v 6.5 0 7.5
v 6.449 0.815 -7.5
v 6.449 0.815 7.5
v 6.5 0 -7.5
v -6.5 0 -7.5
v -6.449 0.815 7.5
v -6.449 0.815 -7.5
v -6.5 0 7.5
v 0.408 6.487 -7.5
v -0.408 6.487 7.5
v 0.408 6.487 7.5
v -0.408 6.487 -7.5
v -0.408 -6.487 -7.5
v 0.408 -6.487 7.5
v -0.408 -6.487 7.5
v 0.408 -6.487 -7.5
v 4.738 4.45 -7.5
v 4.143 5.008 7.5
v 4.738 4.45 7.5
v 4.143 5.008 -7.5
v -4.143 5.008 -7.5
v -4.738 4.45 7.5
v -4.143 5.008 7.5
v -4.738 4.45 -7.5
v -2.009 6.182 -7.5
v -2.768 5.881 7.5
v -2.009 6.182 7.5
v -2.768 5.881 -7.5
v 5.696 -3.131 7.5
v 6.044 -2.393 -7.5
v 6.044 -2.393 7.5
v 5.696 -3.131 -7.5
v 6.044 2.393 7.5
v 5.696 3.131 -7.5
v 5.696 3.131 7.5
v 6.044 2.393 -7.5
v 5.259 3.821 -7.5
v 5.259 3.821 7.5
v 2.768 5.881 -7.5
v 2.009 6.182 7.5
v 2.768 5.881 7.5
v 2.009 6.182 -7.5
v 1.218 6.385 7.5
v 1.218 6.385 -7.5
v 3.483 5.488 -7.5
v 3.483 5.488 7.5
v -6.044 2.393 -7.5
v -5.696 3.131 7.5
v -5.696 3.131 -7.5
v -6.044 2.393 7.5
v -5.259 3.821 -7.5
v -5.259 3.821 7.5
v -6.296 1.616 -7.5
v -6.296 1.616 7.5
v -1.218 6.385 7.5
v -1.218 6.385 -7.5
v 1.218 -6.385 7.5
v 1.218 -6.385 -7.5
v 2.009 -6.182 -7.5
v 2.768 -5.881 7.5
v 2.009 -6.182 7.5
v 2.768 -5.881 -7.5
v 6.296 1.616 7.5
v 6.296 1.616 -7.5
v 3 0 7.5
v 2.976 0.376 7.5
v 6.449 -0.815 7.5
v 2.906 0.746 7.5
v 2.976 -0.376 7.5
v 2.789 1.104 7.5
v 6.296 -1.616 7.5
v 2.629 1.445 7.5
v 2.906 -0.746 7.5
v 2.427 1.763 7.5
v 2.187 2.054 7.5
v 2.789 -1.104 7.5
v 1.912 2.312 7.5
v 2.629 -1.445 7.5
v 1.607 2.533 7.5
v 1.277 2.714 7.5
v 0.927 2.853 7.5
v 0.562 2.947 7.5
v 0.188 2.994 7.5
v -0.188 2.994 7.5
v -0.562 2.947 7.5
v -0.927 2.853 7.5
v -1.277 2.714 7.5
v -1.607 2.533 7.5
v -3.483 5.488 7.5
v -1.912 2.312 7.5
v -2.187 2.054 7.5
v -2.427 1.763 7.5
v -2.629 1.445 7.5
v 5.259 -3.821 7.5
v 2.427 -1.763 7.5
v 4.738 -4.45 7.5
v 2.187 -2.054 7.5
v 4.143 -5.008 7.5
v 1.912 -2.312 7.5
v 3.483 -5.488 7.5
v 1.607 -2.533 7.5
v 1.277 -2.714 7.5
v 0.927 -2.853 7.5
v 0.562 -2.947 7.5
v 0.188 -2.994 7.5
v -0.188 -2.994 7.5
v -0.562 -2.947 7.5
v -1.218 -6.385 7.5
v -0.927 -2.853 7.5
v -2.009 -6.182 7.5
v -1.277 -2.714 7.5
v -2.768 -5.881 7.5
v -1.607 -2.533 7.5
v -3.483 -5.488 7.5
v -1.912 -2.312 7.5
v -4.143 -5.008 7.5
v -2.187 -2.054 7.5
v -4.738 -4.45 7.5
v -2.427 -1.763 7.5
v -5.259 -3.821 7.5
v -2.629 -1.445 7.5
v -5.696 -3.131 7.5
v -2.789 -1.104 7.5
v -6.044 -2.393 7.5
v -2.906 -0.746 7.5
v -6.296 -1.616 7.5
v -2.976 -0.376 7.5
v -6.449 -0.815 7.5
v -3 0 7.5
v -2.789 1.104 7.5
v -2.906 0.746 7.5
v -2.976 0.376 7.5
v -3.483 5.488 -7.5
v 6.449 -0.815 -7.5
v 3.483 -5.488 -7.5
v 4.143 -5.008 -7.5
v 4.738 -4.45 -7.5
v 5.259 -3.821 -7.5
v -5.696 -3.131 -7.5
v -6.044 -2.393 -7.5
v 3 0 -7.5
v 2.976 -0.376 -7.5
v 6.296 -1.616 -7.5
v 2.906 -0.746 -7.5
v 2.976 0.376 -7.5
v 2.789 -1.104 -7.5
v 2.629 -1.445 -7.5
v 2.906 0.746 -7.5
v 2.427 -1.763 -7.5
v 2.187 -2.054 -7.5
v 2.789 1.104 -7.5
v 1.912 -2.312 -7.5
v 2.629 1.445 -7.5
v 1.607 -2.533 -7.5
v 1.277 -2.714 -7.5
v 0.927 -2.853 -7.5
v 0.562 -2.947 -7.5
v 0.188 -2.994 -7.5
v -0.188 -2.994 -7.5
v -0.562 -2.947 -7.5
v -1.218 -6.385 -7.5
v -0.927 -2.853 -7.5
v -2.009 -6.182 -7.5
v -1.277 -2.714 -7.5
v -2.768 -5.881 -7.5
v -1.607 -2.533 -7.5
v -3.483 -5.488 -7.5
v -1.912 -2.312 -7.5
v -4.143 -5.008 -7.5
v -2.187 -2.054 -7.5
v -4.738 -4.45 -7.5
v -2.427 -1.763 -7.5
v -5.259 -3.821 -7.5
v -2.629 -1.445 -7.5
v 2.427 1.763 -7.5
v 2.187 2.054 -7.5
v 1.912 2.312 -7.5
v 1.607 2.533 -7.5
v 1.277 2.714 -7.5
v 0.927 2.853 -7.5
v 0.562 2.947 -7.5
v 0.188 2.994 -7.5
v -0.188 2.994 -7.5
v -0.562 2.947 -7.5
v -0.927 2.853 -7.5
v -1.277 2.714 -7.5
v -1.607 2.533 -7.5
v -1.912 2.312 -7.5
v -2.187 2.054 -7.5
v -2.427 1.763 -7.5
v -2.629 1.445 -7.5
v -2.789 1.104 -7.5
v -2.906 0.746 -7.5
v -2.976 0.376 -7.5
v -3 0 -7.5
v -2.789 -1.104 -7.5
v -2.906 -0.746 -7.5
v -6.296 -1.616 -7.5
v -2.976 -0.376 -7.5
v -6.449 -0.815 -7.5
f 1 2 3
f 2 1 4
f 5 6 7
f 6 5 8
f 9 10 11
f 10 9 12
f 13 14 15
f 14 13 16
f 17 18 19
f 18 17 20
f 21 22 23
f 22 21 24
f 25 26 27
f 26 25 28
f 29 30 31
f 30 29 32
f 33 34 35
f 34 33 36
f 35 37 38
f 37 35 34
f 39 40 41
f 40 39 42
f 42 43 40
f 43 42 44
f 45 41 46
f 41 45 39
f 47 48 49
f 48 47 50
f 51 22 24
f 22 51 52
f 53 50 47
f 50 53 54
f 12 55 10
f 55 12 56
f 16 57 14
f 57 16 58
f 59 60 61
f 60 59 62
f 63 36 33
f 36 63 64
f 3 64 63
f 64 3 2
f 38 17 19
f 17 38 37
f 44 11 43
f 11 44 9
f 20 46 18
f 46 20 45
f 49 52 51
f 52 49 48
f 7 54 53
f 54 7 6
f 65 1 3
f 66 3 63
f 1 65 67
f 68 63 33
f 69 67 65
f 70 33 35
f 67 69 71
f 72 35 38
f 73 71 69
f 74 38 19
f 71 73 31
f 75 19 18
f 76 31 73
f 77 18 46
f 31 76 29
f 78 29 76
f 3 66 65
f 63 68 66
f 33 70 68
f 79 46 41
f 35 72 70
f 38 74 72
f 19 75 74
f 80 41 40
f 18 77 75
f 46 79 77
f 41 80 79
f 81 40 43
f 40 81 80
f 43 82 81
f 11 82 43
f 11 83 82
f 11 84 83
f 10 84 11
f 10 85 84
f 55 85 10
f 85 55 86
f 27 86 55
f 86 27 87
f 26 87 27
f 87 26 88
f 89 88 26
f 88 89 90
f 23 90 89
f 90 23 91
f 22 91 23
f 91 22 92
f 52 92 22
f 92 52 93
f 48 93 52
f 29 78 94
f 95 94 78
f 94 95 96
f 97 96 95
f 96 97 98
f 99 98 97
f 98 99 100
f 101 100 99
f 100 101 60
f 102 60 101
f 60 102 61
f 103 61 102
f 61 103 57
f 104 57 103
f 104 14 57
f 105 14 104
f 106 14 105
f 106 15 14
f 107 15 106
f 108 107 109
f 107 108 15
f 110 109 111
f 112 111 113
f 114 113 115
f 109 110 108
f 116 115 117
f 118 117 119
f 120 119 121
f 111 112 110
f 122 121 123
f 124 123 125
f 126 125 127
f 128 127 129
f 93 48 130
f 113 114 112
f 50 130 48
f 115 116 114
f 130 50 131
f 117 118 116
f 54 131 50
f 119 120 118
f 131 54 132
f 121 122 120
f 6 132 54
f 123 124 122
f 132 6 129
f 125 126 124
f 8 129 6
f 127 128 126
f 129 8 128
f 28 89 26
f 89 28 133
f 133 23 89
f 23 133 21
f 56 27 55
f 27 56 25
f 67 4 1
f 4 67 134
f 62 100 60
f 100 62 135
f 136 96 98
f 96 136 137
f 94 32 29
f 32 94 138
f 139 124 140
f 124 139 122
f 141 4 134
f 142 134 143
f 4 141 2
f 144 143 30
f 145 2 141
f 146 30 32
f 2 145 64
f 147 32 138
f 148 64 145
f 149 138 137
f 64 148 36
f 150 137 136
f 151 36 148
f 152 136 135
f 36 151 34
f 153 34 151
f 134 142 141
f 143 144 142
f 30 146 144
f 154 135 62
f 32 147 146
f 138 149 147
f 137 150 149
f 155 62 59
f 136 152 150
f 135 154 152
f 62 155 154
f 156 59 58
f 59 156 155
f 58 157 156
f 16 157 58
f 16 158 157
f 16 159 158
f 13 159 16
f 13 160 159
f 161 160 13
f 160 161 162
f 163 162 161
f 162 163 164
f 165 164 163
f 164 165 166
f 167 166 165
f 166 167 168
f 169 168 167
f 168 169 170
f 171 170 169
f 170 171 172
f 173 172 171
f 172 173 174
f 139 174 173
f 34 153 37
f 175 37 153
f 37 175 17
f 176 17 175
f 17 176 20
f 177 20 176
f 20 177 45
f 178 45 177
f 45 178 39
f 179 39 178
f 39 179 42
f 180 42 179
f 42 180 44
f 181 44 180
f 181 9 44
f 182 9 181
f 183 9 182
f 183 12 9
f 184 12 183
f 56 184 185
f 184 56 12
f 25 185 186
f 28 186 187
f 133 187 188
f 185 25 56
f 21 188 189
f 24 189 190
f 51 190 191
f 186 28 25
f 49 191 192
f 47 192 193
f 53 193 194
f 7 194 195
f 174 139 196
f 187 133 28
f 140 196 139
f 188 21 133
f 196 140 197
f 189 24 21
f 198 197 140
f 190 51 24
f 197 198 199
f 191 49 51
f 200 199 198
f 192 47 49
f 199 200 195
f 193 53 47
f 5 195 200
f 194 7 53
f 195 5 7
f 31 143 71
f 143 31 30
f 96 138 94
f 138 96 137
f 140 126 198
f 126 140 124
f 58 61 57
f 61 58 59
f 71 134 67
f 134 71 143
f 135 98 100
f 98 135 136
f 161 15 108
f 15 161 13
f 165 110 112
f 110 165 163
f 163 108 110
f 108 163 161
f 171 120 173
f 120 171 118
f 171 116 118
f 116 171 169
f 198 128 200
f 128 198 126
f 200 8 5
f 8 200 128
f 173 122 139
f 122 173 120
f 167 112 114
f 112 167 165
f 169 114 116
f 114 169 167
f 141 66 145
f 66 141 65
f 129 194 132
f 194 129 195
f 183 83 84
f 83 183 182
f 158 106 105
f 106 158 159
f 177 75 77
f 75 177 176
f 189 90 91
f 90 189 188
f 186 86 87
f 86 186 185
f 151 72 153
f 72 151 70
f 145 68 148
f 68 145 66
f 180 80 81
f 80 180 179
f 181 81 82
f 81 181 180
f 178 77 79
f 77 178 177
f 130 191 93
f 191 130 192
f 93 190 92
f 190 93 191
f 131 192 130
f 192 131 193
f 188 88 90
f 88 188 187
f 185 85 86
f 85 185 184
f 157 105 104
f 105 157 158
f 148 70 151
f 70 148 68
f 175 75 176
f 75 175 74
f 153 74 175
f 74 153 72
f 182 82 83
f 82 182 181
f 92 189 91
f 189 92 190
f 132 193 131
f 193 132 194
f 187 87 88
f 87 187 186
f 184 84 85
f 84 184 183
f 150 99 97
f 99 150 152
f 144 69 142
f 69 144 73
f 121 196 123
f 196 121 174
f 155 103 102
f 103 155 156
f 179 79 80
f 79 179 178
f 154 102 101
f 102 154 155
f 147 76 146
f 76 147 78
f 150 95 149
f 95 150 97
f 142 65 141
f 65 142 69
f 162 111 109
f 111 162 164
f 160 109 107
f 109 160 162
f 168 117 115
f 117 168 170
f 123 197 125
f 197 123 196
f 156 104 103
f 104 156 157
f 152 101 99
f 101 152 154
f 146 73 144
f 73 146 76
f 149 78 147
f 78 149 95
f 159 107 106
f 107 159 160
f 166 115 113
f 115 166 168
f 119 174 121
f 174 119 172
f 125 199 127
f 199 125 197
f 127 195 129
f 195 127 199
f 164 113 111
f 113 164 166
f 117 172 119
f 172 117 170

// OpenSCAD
$fn = 50;


difference() {
	union() {
		translate(v = [0, 0, -7.5000000000]) {
			cylinder(h = 15, r = 6.5000000000);
		}
	}
	union() {
		translate(v = [0, 0, -100.0000000000]) {
			cylinder(h = 200, r = 3);
		}
	}
}
